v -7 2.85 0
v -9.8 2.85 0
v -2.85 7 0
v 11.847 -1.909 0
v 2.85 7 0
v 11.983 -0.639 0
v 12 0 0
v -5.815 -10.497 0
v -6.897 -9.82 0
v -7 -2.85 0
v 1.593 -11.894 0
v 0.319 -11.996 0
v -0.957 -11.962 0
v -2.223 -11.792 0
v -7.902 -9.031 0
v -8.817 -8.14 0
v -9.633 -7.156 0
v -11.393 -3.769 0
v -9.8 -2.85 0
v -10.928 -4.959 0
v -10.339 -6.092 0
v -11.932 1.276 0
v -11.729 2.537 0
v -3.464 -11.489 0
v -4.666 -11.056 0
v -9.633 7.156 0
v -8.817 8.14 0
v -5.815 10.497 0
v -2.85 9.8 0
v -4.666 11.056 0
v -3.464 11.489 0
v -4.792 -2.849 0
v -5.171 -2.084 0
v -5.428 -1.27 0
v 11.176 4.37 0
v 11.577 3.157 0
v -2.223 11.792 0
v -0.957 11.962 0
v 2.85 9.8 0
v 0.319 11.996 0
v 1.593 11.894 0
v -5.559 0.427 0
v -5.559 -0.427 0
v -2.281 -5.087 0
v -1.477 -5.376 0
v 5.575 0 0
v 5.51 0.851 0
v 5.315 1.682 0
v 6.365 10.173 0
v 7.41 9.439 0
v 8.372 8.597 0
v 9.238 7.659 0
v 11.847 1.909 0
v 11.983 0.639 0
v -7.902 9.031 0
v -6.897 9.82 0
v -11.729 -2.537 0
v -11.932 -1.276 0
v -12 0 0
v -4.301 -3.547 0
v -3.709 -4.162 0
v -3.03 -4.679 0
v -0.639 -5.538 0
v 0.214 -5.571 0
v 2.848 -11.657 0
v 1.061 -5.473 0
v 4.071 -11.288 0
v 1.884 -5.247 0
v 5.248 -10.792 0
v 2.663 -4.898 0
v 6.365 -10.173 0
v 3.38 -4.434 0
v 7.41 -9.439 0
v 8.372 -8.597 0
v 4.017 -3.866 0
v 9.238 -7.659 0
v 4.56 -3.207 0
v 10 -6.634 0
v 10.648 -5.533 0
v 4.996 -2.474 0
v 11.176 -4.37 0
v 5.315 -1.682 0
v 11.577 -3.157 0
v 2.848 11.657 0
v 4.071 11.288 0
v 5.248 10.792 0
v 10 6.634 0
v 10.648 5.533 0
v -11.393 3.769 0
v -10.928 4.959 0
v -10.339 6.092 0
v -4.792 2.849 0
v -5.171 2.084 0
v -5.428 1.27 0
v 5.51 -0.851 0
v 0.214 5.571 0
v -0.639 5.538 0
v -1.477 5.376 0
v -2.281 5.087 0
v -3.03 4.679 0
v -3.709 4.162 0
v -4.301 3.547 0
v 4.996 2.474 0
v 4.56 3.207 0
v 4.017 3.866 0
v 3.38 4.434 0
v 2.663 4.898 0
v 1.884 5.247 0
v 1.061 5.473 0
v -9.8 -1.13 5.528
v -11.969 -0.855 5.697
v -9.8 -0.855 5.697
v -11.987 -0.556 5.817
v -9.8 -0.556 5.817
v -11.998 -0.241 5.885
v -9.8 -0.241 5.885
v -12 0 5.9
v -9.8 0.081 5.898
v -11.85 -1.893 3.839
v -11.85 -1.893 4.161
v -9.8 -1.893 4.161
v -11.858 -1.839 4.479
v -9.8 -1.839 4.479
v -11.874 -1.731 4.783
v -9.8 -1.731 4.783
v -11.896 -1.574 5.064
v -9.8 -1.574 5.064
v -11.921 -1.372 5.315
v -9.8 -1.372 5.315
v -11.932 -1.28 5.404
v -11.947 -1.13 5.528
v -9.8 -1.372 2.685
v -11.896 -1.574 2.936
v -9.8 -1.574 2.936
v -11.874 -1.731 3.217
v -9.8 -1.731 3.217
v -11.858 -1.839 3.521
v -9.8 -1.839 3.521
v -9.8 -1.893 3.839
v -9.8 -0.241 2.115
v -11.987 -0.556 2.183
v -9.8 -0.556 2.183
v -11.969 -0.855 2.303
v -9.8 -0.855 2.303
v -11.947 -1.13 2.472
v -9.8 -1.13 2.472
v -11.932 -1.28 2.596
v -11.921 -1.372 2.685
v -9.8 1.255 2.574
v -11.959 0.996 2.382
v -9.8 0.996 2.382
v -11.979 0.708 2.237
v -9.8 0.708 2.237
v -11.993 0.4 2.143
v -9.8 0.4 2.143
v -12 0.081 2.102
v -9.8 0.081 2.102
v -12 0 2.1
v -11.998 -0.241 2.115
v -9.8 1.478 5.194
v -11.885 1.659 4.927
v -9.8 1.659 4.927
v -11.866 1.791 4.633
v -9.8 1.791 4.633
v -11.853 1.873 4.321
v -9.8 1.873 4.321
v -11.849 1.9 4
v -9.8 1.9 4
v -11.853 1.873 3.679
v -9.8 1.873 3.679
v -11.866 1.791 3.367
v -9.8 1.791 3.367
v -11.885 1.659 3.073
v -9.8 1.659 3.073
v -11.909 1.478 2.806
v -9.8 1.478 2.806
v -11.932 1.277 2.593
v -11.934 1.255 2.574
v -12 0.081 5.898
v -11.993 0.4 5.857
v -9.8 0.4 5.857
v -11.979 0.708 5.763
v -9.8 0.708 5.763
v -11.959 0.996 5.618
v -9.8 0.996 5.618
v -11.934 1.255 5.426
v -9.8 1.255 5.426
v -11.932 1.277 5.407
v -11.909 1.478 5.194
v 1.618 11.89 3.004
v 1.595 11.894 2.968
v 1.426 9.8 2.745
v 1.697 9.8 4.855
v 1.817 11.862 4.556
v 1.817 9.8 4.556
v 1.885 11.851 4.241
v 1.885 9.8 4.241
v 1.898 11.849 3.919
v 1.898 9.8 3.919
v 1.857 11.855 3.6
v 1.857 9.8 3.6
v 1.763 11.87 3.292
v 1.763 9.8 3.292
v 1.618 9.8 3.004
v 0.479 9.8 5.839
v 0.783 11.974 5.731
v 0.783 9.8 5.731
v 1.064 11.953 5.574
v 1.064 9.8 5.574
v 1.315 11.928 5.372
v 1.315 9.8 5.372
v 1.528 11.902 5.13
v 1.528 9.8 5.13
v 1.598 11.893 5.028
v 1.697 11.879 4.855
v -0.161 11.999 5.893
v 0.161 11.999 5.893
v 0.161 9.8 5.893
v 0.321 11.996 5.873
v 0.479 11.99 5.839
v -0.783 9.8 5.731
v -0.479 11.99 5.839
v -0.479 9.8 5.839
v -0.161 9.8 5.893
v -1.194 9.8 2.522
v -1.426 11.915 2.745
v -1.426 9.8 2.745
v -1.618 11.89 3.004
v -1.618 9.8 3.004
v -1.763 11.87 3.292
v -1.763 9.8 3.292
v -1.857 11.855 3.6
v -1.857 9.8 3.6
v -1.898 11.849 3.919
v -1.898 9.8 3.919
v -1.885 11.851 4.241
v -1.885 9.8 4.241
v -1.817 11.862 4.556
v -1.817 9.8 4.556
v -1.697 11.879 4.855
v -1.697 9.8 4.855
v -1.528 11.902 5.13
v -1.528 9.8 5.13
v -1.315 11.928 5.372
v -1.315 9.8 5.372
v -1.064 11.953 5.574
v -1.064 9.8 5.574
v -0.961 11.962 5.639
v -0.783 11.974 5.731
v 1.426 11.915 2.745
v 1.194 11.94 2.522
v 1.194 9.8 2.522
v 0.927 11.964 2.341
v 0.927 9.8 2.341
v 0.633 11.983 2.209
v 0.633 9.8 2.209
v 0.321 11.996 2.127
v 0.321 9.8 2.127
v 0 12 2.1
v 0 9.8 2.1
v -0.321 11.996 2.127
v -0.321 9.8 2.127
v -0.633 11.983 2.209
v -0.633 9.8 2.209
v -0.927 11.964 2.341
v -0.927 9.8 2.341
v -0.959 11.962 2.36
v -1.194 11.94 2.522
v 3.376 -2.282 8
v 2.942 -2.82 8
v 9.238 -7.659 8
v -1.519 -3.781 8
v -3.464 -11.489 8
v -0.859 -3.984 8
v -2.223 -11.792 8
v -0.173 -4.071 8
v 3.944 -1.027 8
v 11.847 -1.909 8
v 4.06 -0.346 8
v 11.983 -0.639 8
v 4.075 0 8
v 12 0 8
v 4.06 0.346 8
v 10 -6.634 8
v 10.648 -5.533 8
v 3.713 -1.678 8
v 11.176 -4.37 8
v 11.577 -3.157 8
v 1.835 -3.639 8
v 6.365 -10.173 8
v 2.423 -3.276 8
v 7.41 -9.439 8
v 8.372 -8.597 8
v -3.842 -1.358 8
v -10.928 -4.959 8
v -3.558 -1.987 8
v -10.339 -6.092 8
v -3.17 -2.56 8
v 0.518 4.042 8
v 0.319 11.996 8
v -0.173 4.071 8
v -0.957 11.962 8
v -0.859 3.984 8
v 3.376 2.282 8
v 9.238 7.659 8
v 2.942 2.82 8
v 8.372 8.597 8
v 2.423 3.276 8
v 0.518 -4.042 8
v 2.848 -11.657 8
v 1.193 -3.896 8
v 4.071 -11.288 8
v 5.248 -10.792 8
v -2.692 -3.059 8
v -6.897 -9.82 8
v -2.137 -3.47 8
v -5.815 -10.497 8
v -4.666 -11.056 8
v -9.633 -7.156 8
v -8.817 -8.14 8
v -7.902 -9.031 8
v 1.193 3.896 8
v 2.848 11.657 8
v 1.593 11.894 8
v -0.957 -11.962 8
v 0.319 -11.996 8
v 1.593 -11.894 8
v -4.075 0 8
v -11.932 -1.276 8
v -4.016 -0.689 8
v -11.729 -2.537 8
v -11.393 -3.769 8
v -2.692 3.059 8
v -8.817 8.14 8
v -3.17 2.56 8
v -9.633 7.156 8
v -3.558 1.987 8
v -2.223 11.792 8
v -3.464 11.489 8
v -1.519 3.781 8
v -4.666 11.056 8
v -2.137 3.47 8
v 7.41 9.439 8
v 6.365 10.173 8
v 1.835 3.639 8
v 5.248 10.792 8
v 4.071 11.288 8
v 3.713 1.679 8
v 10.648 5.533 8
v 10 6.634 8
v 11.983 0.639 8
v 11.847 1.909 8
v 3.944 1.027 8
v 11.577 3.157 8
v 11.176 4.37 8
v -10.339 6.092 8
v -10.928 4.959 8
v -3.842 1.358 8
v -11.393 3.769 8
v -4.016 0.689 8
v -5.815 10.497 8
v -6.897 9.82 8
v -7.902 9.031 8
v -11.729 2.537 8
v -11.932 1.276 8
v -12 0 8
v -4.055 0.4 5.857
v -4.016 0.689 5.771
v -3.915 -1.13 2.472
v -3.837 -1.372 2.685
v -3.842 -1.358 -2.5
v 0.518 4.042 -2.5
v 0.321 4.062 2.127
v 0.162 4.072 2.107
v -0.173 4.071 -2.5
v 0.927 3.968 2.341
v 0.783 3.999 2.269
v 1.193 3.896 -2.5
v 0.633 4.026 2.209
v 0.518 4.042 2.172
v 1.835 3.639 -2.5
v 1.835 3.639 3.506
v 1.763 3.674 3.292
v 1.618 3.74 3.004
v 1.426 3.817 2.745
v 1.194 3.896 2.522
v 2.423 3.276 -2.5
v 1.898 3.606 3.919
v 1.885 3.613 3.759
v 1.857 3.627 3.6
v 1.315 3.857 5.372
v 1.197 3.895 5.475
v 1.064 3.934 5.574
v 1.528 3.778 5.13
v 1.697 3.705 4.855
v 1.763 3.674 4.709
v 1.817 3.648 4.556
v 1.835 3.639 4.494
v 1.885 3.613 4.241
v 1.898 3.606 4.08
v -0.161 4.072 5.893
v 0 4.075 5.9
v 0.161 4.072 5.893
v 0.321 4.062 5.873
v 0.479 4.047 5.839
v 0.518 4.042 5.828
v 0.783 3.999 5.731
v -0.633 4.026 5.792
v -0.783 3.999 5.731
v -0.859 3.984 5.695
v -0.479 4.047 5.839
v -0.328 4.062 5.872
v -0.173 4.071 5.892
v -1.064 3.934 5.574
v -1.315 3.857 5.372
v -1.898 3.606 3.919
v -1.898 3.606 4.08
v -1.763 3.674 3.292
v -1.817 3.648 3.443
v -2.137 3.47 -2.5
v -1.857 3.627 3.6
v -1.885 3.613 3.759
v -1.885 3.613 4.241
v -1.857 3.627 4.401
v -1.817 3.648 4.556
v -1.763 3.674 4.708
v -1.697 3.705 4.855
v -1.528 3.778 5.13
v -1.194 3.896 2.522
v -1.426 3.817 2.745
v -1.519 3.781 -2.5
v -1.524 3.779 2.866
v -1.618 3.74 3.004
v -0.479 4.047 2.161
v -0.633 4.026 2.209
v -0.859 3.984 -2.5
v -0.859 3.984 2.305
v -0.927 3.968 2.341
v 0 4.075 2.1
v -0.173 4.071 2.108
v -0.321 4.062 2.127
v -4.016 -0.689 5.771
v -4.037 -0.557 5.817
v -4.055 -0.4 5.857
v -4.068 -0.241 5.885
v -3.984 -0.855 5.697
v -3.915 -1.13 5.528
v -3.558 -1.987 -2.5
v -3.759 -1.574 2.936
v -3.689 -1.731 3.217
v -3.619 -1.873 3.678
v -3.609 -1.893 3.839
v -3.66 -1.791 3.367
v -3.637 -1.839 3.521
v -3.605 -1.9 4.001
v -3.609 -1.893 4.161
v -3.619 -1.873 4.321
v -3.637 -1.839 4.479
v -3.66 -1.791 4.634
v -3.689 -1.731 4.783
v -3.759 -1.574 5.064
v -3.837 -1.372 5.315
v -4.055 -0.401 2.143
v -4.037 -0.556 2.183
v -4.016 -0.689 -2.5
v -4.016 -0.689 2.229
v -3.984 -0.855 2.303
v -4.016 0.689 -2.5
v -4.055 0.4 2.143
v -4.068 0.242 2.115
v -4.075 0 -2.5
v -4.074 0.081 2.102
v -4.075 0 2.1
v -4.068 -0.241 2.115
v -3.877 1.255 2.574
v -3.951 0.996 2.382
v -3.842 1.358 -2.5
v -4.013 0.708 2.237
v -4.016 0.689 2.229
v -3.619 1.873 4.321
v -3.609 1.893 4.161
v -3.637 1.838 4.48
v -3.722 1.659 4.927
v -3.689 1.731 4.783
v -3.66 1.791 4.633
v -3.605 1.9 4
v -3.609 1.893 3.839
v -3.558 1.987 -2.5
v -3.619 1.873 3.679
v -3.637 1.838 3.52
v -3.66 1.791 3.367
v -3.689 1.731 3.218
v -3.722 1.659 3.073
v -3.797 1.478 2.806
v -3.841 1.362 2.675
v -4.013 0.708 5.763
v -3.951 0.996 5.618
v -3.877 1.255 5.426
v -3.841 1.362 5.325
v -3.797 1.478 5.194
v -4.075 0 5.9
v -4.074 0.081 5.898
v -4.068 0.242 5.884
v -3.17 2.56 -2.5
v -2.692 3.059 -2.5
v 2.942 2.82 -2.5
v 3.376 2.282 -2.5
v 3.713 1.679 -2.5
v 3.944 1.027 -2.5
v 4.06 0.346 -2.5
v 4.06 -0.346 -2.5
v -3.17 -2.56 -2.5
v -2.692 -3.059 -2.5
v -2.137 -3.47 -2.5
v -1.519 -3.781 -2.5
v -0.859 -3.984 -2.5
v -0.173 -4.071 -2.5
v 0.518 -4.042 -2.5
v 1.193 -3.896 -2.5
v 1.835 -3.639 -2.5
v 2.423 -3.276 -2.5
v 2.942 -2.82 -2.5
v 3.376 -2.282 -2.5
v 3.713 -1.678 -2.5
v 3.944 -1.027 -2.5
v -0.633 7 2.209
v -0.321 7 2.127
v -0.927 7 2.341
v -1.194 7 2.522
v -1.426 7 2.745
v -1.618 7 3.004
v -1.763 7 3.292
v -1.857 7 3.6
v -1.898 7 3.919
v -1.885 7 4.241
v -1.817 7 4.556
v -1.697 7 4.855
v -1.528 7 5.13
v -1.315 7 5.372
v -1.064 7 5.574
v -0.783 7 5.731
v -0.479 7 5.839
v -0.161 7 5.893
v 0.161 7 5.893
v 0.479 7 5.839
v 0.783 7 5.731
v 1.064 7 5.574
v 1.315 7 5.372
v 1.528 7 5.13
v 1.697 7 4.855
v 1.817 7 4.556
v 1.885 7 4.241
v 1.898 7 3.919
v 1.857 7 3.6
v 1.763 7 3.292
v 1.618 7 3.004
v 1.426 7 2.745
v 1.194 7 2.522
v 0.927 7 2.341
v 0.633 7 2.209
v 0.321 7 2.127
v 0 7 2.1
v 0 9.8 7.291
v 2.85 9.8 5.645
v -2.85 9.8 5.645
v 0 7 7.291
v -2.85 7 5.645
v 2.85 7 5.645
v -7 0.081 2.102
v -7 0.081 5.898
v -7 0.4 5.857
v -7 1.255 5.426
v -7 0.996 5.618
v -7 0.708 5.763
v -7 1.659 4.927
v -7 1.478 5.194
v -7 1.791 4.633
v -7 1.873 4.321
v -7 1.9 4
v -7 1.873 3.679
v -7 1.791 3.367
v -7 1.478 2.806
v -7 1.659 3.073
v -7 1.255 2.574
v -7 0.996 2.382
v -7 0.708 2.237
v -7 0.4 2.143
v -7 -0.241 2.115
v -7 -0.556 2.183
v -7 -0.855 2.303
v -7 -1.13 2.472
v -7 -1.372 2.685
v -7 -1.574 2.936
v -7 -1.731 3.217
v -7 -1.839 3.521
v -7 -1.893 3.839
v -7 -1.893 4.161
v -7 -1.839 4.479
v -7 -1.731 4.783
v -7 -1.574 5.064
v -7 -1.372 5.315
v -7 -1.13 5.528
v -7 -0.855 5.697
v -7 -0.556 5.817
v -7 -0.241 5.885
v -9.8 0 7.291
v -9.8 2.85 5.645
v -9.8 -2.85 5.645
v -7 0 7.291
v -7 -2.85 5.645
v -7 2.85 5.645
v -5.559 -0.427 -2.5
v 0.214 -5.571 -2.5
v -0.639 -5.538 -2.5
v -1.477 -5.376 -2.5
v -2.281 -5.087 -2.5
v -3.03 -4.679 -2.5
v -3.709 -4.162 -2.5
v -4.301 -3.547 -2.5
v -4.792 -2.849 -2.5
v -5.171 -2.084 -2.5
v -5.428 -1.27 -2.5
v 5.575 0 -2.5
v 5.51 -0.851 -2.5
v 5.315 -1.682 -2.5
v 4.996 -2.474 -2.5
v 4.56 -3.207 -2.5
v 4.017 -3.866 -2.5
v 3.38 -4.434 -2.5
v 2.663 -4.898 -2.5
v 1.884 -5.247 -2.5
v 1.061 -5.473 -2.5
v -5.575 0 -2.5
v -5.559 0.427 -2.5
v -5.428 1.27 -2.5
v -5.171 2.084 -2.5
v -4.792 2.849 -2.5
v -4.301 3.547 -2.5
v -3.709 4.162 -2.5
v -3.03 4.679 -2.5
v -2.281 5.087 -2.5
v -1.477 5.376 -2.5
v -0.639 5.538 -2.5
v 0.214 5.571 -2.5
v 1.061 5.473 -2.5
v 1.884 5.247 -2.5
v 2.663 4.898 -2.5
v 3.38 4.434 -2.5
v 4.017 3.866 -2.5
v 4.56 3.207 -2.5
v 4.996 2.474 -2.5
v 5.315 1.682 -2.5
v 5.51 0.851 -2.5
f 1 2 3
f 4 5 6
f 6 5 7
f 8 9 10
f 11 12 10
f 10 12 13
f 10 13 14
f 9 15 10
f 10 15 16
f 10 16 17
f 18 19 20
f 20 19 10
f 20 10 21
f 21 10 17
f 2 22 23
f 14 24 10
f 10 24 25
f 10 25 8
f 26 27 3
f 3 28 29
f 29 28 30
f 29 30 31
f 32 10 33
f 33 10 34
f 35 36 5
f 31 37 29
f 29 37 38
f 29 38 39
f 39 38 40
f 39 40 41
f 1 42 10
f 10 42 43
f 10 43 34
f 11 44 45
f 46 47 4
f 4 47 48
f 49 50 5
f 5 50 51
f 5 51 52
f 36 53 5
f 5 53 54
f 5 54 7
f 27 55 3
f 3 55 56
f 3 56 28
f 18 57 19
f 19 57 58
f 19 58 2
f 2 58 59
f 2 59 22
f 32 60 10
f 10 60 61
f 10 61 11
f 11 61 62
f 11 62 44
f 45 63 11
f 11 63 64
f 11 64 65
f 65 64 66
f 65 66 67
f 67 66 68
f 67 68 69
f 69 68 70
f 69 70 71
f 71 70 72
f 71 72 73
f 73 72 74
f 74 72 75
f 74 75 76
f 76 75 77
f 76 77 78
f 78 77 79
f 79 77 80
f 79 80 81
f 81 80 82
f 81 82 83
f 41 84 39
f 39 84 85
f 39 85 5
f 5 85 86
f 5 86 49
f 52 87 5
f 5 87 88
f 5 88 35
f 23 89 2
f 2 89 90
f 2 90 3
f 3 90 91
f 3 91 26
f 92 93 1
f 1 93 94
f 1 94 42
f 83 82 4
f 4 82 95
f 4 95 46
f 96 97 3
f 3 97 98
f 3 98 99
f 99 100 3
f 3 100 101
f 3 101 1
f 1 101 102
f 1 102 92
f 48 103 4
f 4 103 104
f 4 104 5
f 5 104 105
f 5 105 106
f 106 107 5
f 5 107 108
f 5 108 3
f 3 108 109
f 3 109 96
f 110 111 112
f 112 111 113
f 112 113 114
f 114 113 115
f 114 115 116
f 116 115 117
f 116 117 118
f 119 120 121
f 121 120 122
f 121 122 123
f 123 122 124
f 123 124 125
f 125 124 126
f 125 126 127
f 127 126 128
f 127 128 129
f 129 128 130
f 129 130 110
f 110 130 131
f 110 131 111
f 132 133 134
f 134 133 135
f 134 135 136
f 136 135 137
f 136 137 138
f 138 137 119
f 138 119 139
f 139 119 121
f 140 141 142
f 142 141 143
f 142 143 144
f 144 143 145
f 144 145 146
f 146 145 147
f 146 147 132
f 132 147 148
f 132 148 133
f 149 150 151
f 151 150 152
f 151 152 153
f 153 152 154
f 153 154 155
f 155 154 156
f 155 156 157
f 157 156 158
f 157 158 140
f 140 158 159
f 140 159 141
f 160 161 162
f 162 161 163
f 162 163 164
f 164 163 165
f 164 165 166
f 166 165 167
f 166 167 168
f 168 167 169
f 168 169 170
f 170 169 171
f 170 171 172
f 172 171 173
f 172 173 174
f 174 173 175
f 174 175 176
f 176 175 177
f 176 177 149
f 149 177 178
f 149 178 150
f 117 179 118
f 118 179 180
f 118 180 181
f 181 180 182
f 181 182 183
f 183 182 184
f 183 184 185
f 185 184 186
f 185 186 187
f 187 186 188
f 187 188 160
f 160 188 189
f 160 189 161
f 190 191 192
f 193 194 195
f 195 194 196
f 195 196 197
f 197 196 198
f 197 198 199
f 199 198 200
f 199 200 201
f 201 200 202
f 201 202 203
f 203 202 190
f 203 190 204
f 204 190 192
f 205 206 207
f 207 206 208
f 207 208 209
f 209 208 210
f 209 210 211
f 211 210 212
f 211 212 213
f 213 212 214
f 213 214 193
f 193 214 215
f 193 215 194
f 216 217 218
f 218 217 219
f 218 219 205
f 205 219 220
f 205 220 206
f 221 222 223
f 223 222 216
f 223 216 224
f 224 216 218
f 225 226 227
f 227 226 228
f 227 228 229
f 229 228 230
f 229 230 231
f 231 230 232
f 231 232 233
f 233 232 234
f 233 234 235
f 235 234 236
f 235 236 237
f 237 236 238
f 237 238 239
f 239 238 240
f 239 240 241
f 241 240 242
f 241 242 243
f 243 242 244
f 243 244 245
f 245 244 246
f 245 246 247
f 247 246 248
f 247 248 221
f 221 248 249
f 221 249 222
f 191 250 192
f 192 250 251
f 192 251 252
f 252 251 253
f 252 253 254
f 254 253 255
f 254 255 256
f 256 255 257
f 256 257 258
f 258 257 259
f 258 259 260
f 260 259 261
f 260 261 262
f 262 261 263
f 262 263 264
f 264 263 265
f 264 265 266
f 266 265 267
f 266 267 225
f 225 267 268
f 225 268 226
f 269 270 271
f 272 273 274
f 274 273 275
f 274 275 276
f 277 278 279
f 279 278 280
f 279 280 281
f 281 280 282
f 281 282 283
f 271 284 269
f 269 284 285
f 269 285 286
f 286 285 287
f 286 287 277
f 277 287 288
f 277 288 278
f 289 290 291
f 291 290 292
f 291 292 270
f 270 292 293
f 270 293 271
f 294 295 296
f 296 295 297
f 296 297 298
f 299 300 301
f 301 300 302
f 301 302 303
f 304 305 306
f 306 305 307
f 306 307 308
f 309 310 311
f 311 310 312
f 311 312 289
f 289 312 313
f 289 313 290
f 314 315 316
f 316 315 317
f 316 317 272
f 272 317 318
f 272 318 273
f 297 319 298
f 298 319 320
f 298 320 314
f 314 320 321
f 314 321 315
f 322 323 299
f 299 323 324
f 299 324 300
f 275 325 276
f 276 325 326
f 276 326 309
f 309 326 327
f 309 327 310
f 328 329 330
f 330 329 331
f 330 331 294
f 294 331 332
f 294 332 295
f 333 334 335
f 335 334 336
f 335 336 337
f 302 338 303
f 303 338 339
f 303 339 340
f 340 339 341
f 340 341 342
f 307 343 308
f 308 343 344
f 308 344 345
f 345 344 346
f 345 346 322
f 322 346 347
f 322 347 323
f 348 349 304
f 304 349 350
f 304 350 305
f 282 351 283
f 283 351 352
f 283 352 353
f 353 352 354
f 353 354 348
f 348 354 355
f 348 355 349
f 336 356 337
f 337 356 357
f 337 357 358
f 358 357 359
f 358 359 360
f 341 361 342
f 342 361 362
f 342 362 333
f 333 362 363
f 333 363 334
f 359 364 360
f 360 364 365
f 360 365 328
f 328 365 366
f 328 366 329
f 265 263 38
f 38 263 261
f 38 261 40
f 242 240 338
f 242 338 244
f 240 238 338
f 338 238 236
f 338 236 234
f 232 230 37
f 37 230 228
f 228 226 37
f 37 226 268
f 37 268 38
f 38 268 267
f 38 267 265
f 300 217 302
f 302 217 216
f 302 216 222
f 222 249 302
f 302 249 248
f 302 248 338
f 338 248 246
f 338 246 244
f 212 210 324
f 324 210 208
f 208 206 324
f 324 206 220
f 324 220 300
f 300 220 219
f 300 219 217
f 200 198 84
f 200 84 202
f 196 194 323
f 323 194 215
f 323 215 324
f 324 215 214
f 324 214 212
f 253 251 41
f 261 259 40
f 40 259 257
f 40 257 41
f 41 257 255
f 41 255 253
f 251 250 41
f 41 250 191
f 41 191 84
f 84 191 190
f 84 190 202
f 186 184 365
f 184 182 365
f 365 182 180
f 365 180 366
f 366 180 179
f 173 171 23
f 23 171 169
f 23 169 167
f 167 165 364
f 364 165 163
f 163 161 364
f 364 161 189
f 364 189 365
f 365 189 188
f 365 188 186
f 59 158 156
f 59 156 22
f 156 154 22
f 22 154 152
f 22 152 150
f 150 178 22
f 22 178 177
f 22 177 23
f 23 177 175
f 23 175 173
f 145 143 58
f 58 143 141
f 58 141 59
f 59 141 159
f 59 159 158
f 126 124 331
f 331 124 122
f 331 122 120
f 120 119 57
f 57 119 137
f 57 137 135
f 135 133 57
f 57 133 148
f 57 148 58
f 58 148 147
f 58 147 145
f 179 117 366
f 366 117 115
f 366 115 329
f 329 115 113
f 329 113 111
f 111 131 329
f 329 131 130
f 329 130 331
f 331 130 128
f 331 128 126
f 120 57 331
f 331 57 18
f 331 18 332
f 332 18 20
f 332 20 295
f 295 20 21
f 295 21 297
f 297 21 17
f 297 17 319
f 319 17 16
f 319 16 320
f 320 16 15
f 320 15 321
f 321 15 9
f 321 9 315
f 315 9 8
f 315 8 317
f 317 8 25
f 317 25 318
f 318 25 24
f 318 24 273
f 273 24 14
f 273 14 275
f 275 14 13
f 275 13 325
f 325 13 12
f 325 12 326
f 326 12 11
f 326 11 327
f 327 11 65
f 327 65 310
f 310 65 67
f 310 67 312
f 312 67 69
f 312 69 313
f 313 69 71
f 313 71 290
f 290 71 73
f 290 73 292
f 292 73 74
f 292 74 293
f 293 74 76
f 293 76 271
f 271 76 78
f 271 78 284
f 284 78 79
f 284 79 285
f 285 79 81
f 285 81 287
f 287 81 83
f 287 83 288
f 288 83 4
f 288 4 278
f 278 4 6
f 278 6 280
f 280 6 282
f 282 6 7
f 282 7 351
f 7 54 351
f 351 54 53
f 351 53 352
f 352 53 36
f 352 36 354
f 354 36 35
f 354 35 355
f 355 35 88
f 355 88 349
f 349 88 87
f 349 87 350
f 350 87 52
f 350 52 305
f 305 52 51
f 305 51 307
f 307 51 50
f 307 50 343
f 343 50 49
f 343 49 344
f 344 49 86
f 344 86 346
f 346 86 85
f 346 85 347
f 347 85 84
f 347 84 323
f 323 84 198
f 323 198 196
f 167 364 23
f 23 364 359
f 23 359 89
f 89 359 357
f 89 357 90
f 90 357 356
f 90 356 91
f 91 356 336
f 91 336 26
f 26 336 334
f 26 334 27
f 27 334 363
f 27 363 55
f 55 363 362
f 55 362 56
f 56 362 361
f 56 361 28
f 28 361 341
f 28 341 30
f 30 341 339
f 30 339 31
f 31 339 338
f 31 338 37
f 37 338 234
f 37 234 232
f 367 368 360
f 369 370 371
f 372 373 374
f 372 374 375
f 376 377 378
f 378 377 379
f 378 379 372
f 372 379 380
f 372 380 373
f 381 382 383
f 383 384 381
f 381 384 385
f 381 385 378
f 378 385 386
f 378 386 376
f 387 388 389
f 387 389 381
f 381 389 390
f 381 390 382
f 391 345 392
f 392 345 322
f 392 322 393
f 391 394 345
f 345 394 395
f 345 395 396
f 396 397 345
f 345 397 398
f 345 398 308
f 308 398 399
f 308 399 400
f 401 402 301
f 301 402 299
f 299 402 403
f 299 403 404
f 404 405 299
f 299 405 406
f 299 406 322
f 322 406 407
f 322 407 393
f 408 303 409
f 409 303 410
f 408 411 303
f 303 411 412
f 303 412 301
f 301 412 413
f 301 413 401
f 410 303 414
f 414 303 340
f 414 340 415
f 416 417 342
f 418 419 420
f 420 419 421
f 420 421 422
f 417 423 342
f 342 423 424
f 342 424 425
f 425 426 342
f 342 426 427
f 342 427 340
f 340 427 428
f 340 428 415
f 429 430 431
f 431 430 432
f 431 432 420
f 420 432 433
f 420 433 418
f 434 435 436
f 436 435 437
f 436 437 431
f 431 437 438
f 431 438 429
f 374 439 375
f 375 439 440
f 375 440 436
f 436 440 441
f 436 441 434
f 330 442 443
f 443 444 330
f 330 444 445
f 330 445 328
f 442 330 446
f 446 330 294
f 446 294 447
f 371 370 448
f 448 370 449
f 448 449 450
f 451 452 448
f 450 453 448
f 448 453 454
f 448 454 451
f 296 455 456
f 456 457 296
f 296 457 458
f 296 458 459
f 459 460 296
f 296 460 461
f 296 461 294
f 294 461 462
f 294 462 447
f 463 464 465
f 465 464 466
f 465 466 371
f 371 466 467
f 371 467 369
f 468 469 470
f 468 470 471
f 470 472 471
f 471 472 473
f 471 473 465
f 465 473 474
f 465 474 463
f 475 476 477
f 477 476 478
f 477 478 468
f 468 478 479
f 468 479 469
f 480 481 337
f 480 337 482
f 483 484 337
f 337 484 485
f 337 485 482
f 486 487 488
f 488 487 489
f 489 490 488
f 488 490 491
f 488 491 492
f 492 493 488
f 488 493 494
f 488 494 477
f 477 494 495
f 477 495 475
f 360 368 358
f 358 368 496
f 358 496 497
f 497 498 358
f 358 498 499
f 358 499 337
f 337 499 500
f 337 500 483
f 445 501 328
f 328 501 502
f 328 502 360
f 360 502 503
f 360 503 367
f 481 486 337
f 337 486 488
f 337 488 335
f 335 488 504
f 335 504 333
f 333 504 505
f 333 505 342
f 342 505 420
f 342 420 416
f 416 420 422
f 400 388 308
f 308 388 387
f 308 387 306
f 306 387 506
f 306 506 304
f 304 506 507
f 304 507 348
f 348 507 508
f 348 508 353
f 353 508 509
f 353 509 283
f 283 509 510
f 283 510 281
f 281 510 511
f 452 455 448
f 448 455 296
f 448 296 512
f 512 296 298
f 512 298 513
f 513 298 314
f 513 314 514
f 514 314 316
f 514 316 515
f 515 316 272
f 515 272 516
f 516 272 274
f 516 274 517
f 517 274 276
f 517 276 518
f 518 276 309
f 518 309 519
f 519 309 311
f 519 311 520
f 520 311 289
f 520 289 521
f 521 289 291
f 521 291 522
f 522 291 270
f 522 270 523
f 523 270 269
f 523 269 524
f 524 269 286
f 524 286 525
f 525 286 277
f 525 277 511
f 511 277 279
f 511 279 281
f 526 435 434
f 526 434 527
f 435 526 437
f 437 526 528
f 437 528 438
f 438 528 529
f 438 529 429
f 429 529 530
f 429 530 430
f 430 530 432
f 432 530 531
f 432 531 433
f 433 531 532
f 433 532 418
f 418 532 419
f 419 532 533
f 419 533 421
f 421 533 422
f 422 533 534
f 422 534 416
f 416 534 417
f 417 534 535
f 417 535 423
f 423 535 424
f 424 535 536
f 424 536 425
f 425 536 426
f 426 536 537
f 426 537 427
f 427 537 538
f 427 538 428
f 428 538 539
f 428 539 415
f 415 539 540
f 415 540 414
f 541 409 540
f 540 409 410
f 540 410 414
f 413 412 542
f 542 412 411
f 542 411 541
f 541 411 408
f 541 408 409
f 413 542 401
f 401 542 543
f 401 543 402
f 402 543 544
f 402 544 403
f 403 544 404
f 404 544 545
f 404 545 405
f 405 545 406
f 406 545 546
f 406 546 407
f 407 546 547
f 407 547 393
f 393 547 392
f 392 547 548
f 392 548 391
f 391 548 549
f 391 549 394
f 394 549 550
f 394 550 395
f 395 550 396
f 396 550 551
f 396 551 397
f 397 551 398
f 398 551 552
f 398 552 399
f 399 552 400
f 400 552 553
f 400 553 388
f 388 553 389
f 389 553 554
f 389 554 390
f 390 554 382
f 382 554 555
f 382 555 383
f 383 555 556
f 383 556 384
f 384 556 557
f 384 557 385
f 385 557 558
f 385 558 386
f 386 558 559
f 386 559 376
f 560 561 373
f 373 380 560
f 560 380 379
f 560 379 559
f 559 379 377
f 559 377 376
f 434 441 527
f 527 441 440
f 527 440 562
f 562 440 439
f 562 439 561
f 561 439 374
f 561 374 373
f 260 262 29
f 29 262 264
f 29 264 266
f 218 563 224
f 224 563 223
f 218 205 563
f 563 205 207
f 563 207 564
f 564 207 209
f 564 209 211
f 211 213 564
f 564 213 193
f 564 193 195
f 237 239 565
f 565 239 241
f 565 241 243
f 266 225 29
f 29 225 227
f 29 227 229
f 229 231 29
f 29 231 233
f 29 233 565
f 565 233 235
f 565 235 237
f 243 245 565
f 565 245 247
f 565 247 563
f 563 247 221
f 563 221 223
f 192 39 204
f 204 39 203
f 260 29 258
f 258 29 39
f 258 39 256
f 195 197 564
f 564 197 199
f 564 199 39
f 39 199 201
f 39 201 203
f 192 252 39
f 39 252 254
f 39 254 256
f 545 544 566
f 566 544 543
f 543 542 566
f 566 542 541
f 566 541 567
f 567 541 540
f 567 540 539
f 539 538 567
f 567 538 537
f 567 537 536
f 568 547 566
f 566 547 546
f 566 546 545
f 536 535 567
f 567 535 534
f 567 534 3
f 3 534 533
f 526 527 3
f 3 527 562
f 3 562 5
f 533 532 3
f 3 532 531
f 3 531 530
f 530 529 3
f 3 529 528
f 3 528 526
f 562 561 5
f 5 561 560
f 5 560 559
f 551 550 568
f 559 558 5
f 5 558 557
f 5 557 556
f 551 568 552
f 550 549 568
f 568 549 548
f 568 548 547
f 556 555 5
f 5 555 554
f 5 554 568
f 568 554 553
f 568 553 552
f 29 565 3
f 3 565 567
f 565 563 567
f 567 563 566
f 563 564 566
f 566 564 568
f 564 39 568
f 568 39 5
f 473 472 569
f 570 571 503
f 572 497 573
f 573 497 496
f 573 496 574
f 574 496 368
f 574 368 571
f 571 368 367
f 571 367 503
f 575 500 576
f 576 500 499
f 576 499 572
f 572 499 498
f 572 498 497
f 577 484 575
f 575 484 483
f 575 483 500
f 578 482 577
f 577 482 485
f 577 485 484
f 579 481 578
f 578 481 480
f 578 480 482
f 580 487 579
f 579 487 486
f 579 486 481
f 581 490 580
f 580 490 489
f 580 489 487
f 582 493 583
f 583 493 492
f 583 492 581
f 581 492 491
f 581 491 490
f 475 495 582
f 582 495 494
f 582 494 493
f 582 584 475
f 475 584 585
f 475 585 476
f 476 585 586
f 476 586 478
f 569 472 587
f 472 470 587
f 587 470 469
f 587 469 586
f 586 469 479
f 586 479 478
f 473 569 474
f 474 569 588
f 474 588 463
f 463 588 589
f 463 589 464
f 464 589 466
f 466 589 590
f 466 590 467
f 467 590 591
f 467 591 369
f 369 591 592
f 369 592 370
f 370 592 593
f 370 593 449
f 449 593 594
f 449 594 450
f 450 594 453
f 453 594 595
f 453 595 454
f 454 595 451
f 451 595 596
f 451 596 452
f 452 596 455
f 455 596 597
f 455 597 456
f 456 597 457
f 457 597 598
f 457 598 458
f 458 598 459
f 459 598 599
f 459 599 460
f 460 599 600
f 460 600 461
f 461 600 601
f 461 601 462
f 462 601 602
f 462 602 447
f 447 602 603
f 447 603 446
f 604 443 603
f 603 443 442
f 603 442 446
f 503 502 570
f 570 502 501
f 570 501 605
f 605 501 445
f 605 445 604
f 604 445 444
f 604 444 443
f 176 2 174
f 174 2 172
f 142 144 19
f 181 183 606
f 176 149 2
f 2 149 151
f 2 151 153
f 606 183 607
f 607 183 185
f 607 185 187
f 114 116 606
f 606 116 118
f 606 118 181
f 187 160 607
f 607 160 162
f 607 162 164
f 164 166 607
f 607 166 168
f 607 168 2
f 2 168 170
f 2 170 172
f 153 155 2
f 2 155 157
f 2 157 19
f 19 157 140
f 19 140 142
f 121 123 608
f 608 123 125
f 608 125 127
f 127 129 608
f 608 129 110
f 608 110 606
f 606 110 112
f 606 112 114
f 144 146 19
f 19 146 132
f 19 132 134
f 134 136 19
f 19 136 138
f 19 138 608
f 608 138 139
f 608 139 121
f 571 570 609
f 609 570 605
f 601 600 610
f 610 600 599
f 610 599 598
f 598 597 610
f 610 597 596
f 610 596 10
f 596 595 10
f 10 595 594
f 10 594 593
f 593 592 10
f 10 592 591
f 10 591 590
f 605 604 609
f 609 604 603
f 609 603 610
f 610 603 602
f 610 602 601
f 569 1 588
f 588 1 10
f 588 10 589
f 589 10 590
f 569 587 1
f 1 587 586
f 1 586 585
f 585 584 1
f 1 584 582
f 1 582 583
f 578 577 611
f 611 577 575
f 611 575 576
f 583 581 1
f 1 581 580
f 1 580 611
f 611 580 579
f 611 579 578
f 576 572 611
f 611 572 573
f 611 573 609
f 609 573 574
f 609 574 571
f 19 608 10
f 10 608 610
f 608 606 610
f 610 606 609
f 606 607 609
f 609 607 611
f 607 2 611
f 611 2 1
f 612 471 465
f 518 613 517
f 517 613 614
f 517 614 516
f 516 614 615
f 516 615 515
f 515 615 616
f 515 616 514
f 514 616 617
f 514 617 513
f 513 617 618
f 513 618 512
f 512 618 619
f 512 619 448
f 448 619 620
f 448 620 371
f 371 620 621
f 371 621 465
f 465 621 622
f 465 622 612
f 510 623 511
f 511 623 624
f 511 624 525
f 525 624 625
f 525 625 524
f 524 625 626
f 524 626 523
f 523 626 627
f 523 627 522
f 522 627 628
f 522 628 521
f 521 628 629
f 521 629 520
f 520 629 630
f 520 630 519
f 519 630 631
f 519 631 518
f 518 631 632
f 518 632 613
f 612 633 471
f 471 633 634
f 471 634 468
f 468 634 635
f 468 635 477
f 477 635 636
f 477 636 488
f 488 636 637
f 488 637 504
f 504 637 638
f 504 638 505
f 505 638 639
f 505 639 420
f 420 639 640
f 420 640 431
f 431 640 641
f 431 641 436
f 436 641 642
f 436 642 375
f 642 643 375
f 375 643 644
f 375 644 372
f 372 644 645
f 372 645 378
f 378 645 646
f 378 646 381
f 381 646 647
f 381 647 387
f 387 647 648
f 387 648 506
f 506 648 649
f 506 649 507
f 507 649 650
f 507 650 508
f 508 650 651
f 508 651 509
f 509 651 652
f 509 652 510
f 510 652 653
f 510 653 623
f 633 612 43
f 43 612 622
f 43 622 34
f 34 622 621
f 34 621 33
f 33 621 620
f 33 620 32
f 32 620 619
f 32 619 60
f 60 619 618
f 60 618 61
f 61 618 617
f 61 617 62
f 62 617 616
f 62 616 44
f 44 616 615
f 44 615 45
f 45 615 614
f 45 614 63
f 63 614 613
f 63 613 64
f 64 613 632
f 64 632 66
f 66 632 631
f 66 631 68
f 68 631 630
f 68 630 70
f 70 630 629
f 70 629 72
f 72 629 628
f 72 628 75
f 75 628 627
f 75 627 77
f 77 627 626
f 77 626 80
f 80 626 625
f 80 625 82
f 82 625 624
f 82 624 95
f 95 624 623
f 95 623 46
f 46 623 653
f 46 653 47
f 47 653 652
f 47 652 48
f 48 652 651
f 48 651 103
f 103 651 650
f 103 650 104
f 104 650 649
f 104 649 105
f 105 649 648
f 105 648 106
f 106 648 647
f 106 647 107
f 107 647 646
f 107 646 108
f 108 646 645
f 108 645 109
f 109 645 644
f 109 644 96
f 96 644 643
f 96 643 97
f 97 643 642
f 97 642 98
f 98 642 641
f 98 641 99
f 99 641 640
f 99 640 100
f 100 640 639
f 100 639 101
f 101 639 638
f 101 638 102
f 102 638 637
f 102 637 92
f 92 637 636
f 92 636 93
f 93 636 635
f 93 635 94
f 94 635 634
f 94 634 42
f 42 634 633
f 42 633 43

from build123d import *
from build123d.topology import SkipClean

# Parameters (mm, degrees)
SKETCH2_R           = 12
SKETCH2_R_2         = 4.075
BOSS_EXTRUDE2_DEPTH = 8
SKETCH5_R           = 1.9
CUT_EXTRUDE8_DEPTH  = 19.761663039
CUT_EXTRUDE7_DEPTH  = 2.8
CIRPATTERN1_COUNT   = 2
CIRPATTERN1_ANGLE   = 90
BOSS_EXTRUDE3_START = 2.5
SKETCH17_R          = 5.575
SKETCH17_R_2        = 4.075
BOSS_EXTRUDE3_DEPTH = 2.5


with BuildPart() as part:
    # Sketch2 → Boss-Extrude2 (new body)
    with BuildSketch(Plane.XY):
        Circle(SKETCH2_R)
        Circle(SKETCH2_R_2, mode=Mode.SUBTRACT)
    extrude(amount=BOSS_EXTRUDE2_DEPTH)

    # Sketch5 → Cut-Extrude8 (cut, through all)
    with BuildSketch(Plane(origin=(0, 0, 0), x_dir=(0, 0, -1), z_dir=(0, -1, 0))):
        with Locations((-4, 0)):
            Circle(SKETCH5_R)
    cut_extrude8 = extrude(amount=-CUT_EXTRUDE8_DEPTH, mode=Mode.SUBTRACT)

    # Sketch16 → Cut-Extrude7 (cut)
    with BuildSketch(Plane(origin=(0, 7, 0), x_dir=(1, 0, 0), z_dir=(0, 1, 0))):
        Polygon((0, -7.290896534), (2.85, -5.645448267), (2.85, -2.354551733), (2.85, 0), (-2.85, 0), (-2.85, -2.354551733), (-2.85, -5.645448267), align=None)
    cut_extrude7 = extrude(amount=CUT_EXTRUDE7_DEPTH, mode=Mode.SUBTRACT)

    # CirPattern1: Cut-Extrude8, Cut-Extrude7 ×2 about axis
    cirpattern1_axis = Axis((0, 0, 0), (0, 0, 1))
    add([cut_extrude8.rotate(cirpattern1_axis, i * CIRPATTERN1_ANGLE / (CIRPATTERN1_COUNT - 1)) for i in range(1, CIRPATTERN1_COUNT)], mode=Mode.SUBTRACT)
    add([cut_extrude7.rotate(cirpattern1_axis, i * CIRPATTERN1_ANGLE / (CIRPATTERN1_COUNT - 1)) for i in range(1, CIRPATTERN1_COUNT)], mode=Mode.SUBTRACT)

    # Sketch17 → Boss-Extrude3 (add)
    with SkipClean():  # the faces are left unmerged after this step: merging them gives an invalid solid
        with BuildSketch(Plane(origin=(0, 0, 0), x_dir=(-1, 0, 0), z_dir=(0, 0, -1)).offset(BOSS_EXTRUDE3_START)):
            with Locations(Location((0, 0, 0), (0, 0, 180))):
                Circle(SKETCH17_R)
            Circle(SKETCH17_R_2, mode=Mode.SUBTRACT)
        extrude(amount=-BOSS_EXTRUDE3_DEPTH)


solid = part.part
